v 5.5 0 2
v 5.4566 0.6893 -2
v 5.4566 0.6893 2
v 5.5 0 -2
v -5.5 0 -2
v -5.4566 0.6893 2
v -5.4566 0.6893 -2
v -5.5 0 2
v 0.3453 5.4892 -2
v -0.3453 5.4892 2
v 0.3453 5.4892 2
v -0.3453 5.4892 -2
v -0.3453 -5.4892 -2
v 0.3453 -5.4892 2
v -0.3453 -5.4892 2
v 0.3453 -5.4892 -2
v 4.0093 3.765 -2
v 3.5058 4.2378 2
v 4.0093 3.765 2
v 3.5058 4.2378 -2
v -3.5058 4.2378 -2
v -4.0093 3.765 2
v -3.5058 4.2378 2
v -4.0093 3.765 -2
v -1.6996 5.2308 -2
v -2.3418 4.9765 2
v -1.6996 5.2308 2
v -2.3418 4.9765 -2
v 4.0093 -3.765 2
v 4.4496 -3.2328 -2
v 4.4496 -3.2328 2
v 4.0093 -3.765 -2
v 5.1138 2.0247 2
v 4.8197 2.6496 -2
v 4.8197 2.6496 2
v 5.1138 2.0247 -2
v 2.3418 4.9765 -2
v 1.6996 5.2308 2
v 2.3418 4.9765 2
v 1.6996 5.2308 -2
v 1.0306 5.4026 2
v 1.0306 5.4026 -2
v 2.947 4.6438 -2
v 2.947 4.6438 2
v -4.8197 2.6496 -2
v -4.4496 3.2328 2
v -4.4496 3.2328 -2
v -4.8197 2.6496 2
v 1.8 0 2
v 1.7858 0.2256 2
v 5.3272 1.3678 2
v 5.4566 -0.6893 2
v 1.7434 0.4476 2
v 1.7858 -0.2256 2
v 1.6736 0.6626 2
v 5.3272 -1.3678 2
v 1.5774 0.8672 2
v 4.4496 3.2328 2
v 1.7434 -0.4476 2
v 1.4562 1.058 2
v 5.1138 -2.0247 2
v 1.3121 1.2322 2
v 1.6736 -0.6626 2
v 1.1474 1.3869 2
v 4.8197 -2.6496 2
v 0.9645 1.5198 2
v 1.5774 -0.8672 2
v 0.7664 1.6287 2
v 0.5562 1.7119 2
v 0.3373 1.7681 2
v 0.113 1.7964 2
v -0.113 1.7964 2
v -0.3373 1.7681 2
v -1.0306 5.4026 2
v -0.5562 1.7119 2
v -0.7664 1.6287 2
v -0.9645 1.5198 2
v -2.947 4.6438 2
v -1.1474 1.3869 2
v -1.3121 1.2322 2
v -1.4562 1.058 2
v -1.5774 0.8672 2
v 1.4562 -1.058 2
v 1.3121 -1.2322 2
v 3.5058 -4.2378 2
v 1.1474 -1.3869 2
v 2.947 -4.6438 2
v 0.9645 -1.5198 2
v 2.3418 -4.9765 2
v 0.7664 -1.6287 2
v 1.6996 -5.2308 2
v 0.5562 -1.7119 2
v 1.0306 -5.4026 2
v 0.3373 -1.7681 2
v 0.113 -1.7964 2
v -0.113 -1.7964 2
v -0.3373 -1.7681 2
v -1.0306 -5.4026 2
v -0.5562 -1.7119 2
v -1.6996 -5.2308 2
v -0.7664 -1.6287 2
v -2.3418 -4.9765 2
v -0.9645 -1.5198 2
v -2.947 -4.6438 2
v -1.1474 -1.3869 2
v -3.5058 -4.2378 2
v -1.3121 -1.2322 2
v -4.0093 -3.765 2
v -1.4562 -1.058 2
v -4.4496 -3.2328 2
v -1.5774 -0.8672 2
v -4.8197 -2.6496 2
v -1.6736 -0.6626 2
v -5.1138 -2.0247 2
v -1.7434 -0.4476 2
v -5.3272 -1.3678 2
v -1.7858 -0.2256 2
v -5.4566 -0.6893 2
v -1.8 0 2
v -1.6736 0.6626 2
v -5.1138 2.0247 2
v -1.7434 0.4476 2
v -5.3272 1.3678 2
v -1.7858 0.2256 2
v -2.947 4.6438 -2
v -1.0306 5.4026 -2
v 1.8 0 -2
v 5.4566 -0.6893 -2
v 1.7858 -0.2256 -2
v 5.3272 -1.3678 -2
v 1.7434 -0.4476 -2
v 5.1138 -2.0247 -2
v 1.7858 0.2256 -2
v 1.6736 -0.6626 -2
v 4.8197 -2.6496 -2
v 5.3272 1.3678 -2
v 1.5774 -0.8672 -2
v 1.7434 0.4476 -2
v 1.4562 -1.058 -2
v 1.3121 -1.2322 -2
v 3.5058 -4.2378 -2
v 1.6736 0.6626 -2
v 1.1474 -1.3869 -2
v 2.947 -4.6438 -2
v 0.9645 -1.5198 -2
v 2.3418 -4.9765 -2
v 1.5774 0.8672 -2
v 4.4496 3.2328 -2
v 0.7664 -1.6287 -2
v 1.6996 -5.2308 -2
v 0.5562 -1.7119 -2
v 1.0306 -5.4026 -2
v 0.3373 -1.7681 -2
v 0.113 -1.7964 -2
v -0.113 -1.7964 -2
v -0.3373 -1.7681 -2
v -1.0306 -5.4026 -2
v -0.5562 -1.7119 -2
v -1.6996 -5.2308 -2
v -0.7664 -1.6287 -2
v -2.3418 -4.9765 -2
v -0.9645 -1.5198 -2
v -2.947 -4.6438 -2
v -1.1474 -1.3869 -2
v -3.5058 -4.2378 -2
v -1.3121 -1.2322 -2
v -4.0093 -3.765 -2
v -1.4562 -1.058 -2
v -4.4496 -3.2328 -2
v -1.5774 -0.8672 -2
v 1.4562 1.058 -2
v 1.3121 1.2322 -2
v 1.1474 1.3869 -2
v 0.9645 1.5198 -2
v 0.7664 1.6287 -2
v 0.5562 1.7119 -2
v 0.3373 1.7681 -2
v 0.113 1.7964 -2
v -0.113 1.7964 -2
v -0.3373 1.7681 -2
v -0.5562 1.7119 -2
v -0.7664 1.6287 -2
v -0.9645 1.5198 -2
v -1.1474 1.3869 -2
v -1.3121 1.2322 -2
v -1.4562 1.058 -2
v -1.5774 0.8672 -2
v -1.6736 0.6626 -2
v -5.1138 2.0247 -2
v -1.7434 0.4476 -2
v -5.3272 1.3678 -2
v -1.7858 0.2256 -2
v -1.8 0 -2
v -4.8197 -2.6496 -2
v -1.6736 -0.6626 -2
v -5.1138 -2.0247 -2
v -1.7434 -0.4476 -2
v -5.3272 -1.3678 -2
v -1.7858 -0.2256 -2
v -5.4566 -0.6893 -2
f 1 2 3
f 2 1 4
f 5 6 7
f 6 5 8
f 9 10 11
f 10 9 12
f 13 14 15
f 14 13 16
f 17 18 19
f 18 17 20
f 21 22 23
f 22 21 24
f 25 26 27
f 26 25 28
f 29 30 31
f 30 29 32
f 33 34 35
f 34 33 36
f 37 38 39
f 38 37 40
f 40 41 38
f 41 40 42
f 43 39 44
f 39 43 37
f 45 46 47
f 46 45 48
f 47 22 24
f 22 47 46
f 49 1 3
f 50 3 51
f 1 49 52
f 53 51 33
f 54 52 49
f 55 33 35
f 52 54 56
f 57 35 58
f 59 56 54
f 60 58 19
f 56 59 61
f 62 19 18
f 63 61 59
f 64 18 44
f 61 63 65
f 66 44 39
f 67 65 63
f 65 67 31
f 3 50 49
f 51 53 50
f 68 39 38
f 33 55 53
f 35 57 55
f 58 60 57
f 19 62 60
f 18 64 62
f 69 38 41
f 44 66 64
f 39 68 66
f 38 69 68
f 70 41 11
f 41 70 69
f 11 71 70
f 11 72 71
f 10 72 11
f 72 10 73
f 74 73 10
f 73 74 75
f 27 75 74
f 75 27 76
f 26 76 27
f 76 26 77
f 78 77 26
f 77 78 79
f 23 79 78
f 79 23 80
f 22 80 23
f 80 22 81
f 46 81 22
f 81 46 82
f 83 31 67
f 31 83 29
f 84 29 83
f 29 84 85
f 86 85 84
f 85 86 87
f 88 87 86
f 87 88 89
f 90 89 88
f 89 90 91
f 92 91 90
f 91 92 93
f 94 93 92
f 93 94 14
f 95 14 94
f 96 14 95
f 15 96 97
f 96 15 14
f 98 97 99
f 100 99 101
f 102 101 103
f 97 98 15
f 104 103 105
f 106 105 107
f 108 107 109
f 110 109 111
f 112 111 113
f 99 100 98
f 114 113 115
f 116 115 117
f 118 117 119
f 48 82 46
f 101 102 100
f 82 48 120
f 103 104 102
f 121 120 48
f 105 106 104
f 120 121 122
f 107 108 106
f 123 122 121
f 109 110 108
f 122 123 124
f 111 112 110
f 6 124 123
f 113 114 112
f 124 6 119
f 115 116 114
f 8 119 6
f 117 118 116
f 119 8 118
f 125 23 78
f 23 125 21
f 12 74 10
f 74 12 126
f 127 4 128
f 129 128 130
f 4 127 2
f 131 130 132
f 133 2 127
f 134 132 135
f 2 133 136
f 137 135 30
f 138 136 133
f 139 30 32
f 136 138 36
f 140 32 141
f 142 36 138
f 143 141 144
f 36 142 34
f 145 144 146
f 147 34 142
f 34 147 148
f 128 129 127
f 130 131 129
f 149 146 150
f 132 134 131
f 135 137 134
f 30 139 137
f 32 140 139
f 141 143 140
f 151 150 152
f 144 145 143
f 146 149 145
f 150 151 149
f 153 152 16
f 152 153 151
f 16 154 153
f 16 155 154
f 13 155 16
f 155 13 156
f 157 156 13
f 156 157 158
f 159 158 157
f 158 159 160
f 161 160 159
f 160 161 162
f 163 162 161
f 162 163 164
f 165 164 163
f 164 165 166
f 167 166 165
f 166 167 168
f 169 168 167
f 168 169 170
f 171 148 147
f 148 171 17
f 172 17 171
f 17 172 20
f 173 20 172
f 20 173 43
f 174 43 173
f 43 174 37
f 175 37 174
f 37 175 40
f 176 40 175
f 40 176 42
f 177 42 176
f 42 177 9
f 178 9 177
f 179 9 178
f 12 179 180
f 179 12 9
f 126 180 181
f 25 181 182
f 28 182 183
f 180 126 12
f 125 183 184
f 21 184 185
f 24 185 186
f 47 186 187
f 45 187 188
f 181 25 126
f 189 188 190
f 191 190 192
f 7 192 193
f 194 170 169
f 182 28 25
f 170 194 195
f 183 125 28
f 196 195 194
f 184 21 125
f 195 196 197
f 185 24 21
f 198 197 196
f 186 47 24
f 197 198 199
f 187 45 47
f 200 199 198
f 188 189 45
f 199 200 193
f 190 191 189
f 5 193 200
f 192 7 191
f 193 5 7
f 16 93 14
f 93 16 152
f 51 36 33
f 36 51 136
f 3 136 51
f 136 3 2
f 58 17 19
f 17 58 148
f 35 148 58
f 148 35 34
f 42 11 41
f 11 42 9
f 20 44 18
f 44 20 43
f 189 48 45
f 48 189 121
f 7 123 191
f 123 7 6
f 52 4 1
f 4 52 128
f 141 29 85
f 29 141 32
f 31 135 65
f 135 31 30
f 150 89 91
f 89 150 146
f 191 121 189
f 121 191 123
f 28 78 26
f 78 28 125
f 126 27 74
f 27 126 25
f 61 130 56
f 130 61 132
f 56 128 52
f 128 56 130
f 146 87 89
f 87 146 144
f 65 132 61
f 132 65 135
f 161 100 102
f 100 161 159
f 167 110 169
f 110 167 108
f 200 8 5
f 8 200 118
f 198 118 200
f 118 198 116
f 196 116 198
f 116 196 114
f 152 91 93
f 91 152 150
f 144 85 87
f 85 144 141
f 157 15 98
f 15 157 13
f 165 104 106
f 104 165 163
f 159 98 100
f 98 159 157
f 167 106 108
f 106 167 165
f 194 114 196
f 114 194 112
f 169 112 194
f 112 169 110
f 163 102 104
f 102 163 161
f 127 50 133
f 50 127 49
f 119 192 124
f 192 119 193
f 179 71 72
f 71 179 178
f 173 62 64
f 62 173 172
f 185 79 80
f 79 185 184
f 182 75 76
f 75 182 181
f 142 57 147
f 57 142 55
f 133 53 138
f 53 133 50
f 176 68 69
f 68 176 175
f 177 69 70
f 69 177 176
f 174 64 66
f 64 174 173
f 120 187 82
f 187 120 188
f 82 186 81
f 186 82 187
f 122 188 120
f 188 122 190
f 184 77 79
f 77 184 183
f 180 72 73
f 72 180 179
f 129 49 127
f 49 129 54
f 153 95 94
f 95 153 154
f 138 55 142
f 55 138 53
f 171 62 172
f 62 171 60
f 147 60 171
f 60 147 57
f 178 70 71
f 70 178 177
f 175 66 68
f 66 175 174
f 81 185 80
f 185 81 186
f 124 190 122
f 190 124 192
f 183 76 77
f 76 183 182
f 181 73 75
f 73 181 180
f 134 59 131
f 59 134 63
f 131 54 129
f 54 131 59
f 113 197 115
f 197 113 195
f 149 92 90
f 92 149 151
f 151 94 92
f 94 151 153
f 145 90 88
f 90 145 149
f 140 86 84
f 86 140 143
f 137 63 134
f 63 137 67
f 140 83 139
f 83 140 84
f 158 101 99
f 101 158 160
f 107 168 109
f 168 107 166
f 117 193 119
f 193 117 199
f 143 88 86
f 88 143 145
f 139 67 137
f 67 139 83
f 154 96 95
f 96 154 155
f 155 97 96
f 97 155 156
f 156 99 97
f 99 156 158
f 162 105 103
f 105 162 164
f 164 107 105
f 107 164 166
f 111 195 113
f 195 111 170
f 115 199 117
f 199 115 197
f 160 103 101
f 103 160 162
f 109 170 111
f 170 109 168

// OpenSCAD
$fn = 50;


difference() {
	union() {
		translate(v = [0, 0, -2.0000000000]) {
			cylinder(h = 4, r = 5.5000000000);
		}
	}
	union() {
		translate(v = [0, 0, -100.0000000000]) {
			cylinder(h = 200, r = 1.8000000000);
		}
	}
}
